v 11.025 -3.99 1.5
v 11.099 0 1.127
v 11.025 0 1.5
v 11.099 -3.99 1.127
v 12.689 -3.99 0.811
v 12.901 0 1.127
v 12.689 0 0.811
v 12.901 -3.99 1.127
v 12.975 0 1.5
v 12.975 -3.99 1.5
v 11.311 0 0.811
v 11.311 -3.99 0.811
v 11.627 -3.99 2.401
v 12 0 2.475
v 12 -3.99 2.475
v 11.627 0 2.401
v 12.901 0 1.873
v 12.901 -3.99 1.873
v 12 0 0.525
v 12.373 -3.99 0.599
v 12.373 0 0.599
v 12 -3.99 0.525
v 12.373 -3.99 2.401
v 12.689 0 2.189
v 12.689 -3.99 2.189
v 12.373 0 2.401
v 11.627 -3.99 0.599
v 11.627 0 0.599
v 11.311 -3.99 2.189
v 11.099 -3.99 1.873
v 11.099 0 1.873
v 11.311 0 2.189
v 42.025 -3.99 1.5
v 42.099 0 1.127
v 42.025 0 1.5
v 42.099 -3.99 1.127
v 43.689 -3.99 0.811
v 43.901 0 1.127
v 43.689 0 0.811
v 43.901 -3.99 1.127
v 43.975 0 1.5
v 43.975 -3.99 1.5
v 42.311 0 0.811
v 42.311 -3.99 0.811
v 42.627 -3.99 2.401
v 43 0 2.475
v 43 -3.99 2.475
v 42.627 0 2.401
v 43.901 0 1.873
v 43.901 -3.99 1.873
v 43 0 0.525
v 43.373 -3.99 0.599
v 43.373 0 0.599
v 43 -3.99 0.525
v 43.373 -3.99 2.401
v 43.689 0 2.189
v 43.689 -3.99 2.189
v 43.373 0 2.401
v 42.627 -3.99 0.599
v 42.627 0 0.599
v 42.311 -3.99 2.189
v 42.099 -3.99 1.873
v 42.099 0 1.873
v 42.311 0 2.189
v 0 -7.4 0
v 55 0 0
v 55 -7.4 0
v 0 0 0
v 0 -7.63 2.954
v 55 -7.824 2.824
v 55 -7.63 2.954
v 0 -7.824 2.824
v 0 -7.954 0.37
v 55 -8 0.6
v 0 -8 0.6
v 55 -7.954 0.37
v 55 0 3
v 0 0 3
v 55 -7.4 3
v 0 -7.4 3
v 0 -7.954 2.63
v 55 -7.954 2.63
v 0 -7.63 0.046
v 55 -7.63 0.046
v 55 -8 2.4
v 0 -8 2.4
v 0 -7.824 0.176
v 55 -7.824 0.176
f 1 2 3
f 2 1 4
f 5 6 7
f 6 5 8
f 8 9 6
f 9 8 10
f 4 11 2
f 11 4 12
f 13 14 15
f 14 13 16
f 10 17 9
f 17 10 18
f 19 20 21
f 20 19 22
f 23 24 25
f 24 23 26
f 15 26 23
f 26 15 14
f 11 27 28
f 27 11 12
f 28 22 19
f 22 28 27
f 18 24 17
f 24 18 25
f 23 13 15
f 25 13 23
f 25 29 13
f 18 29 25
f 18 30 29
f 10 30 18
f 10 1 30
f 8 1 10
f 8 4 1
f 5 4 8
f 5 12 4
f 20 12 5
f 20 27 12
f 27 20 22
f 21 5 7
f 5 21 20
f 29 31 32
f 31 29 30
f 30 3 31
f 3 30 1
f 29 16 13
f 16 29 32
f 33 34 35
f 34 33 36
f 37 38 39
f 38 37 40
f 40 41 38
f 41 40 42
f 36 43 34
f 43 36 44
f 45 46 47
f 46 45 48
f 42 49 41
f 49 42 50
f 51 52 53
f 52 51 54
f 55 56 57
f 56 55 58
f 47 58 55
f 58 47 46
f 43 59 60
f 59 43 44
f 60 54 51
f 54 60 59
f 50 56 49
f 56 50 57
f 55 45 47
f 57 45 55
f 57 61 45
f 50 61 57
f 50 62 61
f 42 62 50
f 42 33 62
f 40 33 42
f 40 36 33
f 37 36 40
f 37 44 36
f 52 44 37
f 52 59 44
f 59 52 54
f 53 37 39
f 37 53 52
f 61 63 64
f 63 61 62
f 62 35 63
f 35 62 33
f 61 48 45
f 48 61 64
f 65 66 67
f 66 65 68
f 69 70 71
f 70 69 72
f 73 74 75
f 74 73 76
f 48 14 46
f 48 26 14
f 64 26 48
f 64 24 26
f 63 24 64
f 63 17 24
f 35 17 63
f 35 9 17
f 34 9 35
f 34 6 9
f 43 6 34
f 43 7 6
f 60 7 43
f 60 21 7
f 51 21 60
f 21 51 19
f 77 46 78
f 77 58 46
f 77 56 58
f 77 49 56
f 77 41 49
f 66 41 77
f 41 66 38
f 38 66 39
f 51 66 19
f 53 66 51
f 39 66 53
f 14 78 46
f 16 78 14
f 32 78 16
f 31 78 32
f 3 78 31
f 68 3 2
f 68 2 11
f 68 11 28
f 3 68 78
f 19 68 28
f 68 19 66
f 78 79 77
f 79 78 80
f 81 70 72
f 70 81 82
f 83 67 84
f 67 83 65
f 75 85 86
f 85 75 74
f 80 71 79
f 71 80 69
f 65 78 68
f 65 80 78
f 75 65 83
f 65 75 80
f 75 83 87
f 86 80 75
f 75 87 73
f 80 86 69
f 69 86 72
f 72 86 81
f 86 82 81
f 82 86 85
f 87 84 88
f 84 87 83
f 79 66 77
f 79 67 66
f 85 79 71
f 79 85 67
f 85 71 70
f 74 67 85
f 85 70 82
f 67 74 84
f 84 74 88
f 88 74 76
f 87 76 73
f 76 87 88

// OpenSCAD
// Floating_Shelf.stl  -  Store Versile room frame (Rev C)
// Quantity: 3   Filament: Ivory white (e.g. PLA Matte Ivory White)
// Print: layer 0.16 mm, infill 100%, 3 walls, brim 0 mm, NO supports
// Orientation: flat  (as installed)
// Notes: Print 3. Two pin holes in the back edge.
// The library draws parts with their front toward +Y; mirror([0,1,0]) makes the real
// part face the viewer correctly (see build.py). Edit dimensions in versile_parts.scad.
use <../versile_parts.scad>

mirror([0, 1, 0]) floating_shelf();
